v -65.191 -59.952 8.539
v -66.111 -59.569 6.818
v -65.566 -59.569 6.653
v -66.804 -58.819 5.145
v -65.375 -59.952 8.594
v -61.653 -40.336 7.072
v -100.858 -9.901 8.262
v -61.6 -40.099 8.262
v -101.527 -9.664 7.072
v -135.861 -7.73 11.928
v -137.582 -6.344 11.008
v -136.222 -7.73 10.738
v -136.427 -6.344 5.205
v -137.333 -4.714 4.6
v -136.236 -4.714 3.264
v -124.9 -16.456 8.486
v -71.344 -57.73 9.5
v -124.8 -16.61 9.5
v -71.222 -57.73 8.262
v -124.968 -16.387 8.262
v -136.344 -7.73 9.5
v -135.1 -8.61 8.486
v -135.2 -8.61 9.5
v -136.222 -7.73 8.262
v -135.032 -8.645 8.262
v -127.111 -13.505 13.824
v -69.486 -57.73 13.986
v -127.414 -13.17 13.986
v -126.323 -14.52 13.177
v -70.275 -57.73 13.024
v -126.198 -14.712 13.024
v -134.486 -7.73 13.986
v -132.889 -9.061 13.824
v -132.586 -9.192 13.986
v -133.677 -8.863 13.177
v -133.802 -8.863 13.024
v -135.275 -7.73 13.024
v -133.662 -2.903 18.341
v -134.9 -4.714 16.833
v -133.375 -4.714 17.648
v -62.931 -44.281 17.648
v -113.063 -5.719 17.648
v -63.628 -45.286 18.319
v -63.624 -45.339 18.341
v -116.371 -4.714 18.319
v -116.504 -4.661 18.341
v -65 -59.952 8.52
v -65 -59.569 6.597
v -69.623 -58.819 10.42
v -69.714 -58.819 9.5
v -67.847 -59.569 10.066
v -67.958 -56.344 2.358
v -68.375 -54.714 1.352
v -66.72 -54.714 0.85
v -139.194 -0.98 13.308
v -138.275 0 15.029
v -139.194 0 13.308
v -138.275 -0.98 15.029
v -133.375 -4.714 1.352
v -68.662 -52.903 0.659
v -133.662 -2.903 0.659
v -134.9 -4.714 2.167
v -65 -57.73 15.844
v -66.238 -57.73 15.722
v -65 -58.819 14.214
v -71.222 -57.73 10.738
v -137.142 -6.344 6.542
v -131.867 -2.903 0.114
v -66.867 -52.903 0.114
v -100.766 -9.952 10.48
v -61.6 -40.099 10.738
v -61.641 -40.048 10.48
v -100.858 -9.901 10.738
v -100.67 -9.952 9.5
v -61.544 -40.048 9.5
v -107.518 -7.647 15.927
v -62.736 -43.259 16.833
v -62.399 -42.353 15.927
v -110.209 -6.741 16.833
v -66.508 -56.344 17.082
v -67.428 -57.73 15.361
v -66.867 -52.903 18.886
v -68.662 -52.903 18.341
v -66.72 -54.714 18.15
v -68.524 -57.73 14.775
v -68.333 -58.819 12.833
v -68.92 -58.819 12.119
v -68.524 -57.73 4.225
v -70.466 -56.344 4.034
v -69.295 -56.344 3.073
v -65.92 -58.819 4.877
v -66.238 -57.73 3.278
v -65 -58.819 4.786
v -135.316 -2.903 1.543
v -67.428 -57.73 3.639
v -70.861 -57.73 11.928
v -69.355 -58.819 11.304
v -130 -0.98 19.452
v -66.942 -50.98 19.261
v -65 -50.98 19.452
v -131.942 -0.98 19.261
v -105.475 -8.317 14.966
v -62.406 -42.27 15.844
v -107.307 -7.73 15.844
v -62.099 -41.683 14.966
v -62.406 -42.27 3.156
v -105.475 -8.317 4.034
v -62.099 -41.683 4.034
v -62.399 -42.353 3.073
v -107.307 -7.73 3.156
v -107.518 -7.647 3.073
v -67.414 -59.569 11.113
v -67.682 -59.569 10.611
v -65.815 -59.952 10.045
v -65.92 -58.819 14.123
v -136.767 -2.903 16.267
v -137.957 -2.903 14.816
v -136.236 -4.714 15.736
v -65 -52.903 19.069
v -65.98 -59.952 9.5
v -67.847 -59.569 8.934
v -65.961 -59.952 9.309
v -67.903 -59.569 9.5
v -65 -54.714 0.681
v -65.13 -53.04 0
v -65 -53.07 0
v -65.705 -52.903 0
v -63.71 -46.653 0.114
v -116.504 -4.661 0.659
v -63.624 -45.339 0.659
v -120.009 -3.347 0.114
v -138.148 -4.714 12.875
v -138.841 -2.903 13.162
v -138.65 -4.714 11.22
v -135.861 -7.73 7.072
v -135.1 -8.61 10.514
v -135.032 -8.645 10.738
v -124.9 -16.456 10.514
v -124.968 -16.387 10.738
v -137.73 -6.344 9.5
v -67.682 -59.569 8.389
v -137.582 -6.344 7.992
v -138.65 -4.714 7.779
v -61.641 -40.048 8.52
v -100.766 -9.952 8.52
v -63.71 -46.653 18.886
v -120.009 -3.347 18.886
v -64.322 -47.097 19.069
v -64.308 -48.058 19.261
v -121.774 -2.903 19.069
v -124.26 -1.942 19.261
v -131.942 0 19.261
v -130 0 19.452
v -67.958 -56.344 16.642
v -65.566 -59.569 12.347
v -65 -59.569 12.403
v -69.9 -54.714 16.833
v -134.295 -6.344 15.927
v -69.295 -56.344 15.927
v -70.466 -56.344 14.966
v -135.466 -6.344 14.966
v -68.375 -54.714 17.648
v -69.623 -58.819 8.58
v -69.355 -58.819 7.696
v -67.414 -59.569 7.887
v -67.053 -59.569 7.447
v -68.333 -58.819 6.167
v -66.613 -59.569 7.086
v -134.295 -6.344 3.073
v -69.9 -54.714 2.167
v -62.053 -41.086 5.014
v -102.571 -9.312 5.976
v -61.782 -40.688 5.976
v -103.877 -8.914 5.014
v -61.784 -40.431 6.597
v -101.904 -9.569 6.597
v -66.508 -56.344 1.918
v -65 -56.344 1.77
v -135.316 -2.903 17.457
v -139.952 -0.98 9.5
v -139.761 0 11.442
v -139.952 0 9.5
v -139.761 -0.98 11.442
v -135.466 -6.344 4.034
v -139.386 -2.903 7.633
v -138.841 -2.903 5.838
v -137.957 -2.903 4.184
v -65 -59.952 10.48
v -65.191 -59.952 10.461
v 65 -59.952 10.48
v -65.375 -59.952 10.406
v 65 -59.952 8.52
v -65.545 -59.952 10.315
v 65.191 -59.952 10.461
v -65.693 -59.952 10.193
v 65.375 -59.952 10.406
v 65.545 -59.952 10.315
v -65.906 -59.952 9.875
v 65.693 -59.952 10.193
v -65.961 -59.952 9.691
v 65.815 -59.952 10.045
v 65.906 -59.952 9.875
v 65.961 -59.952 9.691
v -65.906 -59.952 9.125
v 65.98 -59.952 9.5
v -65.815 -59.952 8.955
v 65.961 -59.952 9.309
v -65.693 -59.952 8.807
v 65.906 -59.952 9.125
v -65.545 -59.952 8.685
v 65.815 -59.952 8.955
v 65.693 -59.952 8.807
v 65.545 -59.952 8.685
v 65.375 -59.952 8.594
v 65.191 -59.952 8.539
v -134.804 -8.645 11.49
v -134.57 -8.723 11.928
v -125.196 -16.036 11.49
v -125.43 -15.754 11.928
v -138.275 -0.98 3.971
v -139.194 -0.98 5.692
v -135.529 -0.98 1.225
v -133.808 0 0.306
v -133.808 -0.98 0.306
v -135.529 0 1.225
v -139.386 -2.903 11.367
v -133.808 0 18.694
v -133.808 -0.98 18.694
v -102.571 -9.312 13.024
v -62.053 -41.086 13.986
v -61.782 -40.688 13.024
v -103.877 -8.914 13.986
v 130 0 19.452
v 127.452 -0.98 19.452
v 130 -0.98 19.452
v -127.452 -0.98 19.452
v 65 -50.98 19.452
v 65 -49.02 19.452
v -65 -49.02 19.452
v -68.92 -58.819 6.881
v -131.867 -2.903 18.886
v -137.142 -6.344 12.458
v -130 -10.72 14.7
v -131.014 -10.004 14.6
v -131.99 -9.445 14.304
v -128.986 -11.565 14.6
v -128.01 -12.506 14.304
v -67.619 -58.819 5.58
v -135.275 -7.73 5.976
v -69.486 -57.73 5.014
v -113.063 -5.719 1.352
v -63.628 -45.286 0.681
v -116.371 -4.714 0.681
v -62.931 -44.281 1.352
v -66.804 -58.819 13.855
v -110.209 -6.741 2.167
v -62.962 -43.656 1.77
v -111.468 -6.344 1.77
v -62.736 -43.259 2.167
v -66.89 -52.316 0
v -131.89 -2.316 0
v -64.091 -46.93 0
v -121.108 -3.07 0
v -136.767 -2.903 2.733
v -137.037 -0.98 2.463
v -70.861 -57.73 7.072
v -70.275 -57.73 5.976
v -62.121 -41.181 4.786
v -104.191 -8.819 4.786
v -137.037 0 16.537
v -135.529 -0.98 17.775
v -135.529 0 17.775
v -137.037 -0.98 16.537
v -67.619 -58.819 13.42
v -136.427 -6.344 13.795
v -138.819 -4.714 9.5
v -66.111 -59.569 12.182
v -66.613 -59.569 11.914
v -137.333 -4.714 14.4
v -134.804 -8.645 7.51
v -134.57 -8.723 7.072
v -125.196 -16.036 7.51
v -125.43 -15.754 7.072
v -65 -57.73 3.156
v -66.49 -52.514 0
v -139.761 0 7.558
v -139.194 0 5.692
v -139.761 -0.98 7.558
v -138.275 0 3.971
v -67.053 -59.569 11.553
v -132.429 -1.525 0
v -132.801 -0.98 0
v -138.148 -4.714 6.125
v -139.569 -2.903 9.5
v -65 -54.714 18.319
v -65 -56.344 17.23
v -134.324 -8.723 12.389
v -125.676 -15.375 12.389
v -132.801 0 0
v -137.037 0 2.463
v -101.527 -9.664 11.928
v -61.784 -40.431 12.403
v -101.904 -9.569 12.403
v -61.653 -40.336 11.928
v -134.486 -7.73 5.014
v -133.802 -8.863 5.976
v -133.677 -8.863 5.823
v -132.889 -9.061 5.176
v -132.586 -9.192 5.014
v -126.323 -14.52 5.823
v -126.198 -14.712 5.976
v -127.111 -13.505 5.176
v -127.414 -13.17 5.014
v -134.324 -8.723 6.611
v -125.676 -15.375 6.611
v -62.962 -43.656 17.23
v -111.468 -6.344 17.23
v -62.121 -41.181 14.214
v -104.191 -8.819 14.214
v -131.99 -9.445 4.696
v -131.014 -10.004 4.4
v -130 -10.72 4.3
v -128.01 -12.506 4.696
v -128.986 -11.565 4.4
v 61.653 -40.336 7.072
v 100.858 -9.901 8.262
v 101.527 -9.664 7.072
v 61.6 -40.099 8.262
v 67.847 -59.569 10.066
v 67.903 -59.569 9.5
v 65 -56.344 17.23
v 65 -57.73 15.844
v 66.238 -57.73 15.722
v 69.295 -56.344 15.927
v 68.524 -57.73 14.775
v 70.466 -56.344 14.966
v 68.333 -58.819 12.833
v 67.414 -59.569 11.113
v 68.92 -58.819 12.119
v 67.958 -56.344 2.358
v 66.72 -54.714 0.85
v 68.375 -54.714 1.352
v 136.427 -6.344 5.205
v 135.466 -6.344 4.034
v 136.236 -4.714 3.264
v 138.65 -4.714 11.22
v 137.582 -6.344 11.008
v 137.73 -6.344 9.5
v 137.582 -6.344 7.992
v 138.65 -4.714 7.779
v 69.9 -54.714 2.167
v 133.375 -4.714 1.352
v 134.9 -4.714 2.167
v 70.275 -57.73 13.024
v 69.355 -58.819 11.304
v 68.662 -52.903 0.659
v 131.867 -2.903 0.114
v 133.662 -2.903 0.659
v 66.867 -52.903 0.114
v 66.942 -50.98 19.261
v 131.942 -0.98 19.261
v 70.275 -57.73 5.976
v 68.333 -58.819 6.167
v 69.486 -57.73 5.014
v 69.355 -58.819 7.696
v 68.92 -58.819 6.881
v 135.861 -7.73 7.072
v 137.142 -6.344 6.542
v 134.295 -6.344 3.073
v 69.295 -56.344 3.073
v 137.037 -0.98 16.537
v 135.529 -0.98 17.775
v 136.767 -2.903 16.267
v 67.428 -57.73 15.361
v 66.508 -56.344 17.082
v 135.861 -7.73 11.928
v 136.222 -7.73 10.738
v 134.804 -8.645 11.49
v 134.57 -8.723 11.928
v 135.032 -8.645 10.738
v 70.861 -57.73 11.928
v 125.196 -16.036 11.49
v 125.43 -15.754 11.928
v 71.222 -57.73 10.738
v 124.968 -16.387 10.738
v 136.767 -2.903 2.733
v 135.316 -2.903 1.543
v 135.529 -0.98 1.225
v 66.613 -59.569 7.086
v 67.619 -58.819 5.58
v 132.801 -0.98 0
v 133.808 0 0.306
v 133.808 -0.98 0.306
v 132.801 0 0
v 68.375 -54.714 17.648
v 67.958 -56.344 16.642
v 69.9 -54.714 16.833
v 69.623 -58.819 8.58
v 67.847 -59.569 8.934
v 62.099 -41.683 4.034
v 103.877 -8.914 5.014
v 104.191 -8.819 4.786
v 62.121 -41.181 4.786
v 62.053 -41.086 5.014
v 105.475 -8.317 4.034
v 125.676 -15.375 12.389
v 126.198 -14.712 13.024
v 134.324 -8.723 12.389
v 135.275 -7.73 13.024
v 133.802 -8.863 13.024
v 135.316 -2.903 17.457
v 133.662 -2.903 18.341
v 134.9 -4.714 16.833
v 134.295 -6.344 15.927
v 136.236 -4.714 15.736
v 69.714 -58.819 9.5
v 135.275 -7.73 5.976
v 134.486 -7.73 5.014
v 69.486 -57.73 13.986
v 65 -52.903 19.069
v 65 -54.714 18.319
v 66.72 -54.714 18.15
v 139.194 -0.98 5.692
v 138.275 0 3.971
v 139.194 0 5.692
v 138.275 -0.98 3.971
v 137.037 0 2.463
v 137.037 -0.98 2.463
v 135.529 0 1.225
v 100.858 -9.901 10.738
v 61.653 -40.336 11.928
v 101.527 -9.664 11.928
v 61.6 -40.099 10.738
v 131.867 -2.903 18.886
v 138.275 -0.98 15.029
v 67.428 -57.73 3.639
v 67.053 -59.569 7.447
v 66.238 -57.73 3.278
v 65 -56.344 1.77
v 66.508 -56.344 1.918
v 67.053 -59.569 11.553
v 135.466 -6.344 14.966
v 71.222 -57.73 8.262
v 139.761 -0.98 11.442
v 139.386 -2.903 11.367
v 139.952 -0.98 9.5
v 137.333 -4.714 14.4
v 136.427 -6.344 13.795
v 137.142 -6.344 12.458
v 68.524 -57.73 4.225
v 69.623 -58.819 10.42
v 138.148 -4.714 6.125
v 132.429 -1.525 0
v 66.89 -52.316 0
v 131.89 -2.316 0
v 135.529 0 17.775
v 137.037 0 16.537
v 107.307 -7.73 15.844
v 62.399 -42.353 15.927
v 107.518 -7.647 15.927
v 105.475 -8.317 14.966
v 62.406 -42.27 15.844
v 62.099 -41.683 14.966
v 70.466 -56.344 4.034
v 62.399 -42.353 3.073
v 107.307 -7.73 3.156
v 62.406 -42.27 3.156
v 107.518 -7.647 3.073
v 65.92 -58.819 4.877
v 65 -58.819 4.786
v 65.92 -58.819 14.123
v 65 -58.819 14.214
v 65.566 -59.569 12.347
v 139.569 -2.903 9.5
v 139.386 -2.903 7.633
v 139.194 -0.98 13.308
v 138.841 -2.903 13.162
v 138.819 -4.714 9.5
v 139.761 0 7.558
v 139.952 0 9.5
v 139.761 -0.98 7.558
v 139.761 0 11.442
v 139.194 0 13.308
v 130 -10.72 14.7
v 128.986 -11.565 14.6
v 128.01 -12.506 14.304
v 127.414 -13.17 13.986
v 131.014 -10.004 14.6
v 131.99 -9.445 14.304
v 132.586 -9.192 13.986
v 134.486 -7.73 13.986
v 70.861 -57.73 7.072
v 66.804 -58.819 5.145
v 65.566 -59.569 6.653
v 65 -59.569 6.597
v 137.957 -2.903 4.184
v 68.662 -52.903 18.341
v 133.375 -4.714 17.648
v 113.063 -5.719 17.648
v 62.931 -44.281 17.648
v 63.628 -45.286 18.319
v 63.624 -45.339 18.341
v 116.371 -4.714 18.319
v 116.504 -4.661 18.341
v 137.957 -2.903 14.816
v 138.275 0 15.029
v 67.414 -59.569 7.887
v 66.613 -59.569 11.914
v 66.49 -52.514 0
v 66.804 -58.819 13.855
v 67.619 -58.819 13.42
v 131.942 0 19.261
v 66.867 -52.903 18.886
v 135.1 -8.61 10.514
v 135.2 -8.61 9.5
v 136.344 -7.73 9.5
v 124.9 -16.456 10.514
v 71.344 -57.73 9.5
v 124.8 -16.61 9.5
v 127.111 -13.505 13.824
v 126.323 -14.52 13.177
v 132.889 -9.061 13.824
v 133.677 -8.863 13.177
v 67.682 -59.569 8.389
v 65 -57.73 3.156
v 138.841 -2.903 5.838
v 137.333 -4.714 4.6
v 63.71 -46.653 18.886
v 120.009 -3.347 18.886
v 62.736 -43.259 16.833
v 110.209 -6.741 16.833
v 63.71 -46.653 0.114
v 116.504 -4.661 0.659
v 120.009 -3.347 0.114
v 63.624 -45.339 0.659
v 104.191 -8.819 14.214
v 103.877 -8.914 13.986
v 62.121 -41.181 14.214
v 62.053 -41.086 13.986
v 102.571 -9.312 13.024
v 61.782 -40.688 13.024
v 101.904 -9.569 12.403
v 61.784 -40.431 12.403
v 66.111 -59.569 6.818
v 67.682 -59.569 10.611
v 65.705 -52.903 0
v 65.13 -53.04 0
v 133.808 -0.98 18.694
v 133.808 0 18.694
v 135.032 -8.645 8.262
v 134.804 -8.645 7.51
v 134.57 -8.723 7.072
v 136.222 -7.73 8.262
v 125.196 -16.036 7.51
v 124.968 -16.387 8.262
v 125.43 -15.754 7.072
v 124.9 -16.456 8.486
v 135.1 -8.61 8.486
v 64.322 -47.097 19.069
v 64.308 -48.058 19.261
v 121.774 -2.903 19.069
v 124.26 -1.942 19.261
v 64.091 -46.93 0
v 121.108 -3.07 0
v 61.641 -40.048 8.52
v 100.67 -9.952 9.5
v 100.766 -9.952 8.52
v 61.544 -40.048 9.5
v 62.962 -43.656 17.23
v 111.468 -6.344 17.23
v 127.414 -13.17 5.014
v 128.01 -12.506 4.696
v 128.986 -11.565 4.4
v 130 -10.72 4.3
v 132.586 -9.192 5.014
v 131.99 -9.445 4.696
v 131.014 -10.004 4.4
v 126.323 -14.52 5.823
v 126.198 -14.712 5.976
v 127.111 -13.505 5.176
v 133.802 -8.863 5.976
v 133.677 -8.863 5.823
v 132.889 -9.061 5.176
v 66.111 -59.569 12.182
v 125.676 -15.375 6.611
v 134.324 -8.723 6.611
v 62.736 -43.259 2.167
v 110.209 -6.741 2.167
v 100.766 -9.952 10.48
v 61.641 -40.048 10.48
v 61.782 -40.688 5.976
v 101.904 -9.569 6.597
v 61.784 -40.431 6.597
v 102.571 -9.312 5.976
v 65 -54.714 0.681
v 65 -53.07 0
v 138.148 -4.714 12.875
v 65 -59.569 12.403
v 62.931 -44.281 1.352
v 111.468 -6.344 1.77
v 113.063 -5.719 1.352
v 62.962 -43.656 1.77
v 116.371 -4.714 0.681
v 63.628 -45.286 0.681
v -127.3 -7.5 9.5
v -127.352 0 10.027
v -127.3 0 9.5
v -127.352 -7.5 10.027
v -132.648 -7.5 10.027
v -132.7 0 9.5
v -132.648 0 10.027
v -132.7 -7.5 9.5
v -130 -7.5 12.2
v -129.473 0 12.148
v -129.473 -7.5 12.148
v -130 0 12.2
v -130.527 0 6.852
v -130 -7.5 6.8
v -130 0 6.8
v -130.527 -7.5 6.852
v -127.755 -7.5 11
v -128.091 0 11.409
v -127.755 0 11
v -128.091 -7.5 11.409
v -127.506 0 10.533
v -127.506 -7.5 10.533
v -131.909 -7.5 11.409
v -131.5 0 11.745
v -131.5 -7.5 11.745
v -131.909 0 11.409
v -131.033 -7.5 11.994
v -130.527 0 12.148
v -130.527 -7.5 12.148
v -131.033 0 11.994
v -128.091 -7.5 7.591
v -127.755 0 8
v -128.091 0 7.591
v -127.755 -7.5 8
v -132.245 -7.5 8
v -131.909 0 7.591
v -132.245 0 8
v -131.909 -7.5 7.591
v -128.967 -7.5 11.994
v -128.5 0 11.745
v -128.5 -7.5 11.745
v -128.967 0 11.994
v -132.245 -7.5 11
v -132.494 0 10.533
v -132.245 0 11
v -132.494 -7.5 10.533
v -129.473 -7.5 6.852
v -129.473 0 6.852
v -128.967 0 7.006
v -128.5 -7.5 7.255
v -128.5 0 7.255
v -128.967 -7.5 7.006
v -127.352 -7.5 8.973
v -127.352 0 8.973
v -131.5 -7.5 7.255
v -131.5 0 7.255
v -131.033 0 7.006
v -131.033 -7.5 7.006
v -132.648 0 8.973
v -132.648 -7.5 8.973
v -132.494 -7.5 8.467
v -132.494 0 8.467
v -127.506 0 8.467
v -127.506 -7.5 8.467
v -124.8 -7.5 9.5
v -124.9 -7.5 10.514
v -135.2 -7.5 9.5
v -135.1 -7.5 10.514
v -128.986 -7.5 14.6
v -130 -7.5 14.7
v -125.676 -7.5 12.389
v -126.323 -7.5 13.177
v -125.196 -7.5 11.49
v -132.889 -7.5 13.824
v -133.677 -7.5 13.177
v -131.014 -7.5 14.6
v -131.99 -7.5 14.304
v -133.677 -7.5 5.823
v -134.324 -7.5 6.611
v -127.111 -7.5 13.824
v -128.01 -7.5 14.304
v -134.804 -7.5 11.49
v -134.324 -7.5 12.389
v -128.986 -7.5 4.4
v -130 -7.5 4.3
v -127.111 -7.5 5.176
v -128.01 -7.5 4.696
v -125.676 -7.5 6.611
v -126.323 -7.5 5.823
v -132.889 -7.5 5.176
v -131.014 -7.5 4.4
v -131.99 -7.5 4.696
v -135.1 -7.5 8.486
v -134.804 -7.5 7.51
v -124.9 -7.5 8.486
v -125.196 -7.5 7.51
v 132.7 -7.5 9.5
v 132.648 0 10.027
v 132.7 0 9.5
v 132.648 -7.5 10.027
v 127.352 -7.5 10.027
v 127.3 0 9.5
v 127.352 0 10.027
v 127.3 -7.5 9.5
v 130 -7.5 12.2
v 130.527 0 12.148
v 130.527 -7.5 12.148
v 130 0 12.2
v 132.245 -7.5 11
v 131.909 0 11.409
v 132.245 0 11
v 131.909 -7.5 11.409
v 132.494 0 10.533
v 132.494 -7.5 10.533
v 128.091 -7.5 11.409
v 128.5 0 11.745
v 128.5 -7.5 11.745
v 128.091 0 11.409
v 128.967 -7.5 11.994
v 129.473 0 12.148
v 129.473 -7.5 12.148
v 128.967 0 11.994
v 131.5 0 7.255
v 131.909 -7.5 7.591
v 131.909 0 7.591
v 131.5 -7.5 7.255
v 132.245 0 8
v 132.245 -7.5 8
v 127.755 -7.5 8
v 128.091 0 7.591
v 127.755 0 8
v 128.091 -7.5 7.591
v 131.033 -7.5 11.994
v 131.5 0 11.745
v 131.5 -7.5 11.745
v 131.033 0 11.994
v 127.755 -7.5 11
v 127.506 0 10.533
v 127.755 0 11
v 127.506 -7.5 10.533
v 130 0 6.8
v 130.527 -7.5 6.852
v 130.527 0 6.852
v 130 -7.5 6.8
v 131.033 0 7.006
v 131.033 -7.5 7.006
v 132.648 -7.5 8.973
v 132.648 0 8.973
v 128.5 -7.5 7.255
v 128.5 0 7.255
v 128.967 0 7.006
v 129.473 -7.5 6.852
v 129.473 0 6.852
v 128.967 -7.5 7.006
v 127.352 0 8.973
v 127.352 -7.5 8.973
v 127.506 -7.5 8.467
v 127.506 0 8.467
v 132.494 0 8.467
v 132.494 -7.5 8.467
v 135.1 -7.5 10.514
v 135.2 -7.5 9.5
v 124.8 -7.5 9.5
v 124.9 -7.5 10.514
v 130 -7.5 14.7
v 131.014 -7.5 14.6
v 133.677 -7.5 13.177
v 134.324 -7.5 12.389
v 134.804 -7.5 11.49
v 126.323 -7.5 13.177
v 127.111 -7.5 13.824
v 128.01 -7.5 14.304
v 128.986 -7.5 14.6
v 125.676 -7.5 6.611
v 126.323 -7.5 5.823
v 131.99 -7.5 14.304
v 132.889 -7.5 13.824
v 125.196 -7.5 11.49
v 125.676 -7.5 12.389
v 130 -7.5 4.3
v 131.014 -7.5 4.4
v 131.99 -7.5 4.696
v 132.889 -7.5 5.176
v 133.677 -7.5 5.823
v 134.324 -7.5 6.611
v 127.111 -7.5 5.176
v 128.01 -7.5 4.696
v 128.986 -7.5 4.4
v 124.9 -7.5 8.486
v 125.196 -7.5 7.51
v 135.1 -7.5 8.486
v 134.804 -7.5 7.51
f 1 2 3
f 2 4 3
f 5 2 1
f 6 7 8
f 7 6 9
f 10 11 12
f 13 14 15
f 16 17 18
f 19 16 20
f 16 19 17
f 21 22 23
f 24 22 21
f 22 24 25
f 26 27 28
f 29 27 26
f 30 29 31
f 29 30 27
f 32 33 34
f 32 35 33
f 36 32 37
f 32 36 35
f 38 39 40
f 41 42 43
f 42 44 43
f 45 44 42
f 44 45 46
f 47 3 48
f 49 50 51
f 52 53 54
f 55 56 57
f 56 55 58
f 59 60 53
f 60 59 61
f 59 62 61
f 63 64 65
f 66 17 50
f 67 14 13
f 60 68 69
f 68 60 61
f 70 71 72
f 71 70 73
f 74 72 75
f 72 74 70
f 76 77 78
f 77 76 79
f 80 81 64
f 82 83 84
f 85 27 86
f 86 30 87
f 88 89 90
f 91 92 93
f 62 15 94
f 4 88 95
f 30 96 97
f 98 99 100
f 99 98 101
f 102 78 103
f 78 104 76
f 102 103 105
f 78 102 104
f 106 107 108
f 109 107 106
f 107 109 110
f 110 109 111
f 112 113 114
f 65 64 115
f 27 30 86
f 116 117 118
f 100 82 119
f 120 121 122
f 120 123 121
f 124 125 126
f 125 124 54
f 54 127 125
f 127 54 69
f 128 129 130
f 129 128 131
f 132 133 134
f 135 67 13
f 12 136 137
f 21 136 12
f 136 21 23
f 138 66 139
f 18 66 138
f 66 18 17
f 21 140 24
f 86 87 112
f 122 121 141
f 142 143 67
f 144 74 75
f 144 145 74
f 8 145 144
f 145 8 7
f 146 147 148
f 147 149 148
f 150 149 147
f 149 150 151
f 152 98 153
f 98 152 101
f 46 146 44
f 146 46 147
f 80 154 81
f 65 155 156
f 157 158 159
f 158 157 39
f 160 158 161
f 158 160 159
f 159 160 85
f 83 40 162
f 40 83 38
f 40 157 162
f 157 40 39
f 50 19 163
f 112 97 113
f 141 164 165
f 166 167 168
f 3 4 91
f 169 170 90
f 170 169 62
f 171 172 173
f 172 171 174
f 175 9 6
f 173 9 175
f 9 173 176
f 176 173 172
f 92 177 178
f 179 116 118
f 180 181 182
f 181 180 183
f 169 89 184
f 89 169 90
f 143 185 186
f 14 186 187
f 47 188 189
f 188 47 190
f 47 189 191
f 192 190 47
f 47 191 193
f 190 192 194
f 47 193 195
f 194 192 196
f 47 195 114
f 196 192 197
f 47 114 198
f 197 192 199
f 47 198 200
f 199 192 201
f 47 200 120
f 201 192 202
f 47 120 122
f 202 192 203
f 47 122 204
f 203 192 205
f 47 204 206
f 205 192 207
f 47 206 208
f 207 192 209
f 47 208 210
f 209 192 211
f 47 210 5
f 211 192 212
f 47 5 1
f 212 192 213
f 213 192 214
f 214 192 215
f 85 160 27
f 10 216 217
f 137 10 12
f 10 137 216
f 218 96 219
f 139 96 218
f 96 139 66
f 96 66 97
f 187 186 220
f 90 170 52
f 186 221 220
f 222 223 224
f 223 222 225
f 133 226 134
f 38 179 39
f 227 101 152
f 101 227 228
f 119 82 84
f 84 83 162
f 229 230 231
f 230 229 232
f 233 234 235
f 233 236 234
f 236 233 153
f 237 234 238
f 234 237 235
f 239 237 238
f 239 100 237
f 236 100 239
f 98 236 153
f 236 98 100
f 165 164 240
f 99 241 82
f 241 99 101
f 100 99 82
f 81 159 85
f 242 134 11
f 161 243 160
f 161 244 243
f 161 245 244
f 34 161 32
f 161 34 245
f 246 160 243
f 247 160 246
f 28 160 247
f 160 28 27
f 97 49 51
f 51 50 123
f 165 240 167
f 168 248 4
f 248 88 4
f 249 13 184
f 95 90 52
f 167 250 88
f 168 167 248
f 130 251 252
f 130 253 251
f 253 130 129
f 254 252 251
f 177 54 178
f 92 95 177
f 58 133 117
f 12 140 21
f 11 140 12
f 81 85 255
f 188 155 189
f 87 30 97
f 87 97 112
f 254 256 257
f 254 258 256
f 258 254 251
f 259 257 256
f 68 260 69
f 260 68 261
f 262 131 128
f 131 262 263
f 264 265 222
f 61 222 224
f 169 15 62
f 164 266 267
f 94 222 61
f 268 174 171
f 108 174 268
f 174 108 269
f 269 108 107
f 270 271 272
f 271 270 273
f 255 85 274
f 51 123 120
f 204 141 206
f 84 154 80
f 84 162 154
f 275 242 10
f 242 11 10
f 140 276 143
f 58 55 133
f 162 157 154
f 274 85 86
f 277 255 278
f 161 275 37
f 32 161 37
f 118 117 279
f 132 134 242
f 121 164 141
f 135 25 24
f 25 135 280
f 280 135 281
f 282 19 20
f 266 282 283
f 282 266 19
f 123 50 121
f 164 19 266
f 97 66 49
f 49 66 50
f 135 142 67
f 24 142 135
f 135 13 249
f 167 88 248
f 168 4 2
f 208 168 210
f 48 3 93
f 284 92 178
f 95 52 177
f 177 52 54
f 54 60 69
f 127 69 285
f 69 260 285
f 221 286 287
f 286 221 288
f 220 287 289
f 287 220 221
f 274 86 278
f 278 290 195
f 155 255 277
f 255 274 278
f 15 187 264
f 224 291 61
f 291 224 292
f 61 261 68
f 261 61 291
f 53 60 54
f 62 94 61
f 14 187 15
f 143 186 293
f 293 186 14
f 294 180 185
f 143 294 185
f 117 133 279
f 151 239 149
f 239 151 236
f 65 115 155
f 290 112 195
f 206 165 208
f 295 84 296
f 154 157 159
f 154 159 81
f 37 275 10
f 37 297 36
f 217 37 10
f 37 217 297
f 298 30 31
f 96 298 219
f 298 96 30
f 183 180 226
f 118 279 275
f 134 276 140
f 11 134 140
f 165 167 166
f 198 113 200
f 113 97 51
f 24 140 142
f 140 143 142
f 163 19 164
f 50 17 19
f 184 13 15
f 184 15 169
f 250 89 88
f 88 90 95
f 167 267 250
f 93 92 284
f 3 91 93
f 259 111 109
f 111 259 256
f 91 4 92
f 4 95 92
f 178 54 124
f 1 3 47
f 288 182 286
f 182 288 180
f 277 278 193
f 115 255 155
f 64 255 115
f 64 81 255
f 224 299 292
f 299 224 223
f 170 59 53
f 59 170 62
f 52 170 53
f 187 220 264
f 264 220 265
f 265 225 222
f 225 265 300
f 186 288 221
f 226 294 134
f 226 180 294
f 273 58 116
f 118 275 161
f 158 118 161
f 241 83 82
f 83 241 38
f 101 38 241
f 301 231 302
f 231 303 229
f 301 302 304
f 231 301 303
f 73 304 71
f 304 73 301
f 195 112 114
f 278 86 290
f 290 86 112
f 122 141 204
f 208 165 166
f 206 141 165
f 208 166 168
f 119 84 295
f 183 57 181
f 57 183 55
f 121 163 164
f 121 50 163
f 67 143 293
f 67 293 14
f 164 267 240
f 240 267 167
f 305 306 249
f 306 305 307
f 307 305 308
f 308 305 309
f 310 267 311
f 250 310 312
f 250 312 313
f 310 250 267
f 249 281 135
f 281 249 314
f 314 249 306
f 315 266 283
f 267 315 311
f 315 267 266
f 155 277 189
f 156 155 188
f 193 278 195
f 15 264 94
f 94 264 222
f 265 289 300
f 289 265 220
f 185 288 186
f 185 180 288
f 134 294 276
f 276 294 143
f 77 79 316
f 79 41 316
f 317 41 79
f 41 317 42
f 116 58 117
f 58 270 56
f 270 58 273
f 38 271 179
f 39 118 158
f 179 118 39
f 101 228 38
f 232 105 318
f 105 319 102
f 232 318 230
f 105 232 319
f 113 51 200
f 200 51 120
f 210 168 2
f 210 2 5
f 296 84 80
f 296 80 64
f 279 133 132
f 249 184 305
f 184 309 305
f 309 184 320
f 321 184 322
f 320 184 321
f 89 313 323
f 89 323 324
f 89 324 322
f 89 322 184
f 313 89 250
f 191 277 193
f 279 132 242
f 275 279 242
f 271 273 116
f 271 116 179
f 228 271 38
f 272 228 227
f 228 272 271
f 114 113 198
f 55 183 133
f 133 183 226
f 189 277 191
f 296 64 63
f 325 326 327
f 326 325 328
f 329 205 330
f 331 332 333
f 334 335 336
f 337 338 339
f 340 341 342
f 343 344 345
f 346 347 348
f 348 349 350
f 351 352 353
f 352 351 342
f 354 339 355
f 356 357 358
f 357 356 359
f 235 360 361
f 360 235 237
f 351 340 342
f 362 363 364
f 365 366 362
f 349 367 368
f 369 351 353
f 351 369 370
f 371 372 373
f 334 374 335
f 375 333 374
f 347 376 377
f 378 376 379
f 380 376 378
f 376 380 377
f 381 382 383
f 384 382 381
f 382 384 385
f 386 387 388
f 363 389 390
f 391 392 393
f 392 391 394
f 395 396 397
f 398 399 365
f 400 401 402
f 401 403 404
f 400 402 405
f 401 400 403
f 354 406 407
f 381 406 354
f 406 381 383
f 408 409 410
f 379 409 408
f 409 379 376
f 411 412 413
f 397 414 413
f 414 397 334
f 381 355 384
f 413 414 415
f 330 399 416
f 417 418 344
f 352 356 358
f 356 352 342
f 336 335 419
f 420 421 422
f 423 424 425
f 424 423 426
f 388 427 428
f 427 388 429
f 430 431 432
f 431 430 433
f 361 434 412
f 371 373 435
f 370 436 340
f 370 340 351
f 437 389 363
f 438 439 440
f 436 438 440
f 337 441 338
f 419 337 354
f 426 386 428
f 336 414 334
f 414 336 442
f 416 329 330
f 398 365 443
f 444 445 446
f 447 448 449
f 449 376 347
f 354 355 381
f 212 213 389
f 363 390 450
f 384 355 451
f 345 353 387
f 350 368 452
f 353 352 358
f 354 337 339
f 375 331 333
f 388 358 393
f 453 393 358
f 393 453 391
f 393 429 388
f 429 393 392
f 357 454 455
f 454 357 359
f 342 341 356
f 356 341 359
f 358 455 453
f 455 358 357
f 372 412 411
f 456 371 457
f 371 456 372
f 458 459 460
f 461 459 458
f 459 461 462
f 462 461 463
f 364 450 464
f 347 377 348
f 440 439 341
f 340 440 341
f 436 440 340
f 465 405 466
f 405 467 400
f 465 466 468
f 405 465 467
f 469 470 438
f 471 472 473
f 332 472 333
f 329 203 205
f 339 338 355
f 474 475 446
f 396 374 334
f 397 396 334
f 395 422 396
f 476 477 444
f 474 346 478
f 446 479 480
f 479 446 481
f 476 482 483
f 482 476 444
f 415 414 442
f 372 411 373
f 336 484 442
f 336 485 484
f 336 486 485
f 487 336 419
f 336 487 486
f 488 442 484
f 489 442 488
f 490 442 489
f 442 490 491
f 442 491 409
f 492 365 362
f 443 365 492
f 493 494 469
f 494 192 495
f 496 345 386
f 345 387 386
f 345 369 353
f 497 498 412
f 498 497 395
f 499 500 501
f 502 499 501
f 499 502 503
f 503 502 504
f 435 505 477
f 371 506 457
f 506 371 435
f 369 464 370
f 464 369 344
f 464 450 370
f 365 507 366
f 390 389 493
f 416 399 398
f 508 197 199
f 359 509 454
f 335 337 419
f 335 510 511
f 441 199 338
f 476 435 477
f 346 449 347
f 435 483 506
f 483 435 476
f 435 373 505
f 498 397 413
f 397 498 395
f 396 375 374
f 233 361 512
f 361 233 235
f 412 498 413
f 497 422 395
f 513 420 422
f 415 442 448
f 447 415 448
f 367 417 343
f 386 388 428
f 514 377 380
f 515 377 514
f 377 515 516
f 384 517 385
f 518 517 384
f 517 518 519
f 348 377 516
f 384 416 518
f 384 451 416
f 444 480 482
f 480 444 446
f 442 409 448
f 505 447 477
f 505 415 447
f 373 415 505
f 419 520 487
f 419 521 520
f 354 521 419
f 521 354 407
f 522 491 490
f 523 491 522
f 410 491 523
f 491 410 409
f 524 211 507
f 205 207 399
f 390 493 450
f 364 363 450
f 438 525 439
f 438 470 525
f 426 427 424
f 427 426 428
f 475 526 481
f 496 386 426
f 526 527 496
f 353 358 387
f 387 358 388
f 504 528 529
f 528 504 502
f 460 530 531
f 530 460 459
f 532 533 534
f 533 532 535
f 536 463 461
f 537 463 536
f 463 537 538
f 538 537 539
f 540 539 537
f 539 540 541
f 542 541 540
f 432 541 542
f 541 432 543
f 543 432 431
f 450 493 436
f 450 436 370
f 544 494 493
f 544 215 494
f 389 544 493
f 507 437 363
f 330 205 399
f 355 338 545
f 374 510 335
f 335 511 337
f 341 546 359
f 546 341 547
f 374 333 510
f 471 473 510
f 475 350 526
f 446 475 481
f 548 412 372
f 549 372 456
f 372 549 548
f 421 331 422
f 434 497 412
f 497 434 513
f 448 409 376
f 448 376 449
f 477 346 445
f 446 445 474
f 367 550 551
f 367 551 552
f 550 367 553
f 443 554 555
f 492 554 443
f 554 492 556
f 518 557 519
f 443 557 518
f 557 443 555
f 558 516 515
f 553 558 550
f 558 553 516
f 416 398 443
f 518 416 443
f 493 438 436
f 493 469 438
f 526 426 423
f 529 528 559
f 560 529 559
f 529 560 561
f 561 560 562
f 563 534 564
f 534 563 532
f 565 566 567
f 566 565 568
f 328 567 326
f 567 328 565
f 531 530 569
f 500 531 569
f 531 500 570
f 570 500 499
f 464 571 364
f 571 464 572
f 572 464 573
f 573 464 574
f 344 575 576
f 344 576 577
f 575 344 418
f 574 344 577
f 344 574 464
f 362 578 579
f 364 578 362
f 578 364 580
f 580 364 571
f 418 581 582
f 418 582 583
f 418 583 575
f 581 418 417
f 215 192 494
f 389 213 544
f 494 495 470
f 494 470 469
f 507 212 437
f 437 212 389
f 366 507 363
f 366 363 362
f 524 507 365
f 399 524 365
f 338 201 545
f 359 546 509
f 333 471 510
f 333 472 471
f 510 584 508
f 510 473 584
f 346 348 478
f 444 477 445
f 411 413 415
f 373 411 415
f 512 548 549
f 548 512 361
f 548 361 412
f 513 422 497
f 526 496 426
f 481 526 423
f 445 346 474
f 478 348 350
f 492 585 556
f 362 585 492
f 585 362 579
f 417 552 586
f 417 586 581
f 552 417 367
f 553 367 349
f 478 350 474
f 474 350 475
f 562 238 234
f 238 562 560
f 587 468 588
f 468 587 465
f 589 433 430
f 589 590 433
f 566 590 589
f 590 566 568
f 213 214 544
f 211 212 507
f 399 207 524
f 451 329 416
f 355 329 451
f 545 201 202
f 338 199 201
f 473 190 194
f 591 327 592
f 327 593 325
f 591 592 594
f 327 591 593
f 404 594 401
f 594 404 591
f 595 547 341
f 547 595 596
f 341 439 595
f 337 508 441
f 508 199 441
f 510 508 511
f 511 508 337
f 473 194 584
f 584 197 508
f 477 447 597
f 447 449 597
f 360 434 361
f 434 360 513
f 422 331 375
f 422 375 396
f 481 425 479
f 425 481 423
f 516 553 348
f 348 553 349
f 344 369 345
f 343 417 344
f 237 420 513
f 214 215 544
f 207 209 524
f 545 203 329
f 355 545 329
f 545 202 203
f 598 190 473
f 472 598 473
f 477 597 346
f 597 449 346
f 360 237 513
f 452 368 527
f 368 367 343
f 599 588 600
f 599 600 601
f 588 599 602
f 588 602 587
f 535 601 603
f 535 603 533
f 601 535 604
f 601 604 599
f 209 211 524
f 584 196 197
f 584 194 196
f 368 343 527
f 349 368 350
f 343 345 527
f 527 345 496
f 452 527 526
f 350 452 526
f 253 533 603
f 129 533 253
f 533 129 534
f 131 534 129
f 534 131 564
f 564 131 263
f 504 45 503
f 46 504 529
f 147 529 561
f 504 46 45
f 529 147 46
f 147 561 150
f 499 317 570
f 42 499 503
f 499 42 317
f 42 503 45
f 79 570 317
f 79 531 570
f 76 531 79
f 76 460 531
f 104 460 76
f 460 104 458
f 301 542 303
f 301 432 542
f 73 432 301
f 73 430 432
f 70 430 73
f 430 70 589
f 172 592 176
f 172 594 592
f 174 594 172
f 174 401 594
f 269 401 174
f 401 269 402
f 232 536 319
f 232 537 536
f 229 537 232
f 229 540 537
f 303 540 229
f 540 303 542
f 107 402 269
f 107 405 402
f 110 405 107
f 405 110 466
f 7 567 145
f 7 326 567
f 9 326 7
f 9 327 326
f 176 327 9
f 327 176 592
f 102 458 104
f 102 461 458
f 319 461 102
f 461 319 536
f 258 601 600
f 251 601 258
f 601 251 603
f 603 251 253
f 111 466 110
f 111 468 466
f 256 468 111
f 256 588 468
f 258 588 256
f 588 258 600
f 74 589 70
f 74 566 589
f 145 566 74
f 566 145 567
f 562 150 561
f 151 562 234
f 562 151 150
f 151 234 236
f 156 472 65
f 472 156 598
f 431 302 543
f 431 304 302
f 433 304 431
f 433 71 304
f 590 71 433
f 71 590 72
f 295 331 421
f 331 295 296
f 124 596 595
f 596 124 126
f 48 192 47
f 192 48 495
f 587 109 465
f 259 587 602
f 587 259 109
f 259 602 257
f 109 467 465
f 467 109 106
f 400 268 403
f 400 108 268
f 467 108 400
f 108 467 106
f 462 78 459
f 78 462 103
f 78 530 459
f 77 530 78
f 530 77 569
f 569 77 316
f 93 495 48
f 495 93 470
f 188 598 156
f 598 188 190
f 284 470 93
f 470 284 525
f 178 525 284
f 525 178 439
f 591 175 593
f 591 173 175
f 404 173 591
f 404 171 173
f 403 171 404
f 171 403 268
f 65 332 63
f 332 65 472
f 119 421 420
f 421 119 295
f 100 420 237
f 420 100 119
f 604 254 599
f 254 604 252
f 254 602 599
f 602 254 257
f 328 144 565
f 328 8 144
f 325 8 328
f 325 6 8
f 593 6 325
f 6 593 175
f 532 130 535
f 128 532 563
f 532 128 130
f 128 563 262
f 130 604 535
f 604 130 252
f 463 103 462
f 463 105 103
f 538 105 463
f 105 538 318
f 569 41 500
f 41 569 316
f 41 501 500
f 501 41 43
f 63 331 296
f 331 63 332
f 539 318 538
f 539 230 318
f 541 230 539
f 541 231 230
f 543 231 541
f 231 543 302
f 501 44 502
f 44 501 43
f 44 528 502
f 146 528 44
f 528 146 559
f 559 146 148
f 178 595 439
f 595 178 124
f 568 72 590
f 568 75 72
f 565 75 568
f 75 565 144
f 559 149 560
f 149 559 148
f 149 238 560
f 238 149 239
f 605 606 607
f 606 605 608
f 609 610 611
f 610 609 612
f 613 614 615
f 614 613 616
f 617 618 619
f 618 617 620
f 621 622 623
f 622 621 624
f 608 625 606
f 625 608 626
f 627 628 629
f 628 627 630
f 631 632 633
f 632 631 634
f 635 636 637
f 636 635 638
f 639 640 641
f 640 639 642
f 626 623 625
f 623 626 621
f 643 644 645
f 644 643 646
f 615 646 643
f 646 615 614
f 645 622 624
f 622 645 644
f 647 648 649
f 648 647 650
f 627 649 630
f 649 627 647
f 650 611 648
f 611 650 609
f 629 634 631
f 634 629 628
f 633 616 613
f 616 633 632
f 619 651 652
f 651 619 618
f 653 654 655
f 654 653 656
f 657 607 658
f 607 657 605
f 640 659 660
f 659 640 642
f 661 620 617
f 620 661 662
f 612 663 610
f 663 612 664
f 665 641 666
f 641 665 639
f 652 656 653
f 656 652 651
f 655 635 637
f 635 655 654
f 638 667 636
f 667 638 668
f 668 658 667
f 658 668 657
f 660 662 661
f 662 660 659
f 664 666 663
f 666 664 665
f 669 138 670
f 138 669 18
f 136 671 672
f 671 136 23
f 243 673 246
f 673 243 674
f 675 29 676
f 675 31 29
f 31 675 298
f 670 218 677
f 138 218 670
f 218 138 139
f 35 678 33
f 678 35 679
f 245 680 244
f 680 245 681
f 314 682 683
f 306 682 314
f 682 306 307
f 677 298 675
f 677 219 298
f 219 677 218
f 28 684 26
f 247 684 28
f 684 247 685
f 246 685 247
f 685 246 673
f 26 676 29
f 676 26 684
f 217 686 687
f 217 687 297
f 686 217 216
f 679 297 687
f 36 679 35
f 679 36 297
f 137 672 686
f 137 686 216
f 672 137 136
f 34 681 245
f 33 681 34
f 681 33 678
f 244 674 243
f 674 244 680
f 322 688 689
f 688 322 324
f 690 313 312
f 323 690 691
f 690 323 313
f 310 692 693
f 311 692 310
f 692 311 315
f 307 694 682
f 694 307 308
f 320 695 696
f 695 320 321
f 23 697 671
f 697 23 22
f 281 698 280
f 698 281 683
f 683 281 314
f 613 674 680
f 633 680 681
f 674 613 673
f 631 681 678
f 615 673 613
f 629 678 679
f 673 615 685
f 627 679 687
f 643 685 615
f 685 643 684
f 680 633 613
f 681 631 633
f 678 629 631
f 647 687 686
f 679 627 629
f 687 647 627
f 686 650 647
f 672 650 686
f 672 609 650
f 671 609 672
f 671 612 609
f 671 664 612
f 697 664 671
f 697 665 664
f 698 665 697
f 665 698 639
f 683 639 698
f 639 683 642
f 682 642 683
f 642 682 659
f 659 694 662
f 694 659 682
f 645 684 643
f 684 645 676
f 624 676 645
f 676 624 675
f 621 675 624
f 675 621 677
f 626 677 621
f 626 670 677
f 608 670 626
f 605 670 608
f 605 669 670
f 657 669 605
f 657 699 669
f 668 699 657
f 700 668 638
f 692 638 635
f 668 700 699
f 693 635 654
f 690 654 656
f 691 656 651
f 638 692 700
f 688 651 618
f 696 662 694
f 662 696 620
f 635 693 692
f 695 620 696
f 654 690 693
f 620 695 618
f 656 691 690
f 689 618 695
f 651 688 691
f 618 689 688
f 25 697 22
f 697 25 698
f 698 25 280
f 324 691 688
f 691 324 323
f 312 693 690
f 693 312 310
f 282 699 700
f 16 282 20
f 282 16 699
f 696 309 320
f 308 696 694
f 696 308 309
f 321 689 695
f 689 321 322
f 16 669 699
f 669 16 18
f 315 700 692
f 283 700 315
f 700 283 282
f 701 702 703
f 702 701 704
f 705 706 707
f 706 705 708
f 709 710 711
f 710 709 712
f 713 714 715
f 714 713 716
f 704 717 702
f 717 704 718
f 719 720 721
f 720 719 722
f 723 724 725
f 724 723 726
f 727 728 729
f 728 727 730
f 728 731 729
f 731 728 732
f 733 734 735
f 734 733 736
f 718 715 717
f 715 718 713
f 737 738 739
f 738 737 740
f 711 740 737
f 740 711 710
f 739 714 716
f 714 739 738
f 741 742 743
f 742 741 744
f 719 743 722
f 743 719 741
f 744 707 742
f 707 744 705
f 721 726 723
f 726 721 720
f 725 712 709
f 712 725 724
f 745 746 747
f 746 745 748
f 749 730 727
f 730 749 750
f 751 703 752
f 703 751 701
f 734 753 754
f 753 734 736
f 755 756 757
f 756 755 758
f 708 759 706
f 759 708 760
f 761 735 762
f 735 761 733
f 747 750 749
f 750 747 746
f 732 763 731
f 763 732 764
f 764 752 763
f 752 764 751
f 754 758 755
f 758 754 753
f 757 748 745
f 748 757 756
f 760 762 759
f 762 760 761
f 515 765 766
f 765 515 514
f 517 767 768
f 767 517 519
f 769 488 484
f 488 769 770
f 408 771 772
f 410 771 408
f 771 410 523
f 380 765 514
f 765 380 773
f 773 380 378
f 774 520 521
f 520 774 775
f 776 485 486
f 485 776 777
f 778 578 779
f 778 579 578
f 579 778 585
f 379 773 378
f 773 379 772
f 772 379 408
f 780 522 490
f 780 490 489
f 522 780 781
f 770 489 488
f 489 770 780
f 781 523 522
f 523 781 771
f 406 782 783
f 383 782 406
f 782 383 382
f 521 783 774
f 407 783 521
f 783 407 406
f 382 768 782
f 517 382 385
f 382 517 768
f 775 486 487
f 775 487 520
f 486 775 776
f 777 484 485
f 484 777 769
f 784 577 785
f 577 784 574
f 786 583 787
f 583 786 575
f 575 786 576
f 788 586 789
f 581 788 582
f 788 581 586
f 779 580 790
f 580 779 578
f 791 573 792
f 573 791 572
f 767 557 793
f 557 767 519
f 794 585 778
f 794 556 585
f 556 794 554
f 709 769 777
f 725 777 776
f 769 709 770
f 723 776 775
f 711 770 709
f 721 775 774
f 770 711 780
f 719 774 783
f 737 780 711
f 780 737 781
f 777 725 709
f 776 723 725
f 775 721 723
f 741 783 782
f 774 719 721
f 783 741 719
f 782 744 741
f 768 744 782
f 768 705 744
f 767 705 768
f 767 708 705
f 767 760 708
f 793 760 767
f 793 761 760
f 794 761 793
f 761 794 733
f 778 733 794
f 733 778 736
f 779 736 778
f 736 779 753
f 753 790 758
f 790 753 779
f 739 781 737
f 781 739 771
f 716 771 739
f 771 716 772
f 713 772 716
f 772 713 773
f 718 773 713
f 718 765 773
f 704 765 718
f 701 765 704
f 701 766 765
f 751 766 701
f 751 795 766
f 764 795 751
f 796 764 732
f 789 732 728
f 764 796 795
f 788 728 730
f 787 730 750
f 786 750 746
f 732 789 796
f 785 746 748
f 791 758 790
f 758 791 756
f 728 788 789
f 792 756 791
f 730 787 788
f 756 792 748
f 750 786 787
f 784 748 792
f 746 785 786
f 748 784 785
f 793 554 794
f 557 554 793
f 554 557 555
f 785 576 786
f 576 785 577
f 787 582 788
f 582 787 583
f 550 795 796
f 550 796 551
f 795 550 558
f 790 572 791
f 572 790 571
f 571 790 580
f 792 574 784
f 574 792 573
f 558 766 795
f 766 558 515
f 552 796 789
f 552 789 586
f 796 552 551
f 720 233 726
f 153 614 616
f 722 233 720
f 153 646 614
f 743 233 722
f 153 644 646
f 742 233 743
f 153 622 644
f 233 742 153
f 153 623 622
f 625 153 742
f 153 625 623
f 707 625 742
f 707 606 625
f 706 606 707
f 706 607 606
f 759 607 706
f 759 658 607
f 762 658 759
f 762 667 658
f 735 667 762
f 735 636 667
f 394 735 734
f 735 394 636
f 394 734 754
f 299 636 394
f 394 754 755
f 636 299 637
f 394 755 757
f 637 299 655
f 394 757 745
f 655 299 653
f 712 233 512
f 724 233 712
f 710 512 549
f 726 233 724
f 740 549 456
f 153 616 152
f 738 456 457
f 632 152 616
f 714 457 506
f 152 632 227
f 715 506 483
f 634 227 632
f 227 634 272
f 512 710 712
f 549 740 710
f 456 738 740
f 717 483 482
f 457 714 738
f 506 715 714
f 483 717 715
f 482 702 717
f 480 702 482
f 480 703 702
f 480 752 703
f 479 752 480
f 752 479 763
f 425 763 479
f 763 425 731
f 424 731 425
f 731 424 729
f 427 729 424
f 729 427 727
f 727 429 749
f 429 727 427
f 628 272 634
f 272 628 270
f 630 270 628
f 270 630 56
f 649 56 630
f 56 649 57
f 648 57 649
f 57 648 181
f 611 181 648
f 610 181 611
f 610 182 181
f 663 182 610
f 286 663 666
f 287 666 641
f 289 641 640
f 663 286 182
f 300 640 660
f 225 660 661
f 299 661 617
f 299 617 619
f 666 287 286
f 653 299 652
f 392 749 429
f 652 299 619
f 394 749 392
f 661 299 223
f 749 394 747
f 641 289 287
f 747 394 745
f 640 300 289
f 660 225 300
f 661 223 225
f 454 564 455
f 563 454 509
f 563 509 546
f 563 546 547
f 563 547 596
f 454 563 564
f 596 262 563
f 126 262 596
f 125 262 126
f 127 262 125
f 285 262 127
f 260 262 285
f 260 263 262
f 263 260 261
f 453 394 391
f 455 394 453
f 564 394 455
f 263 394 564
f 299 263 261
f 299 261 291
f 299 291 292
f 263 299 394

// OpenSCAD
// file: ../configuration.scad
in = 25.4;
mdf_wall = 6.5;
mdf_tab = 15;

wall = 5;

screw_slop = .2;
slop = .2;
laser_slop = -.1;

smooth_rod_rad = 10/2+laser_slop+.1;
smooth_rod_sep =490/5;

//this is for the old printer 
//smooth_rod_sep = 115;

//these can't change - measured values.
beam = 20;
bed_screw_sep = 309;
bed = 300;

layer_height=.2;

//this is using the gt2 idlers from robotdigg
//idler_rad = 13/2;
//idler_flange_rad = 18/2;
//idler_thick = 12;

//these use the smaller M5 flanged bearings as idlers
idler_rad = 16/2;
idler_flange_rad = 18/2;
idler_thick = 11.5;

//flanged bearing for the Z idler
z_bearing=22/2;
z_bearing_flange = 25/2;
leadscrew_rad = 8/2+slop;
leadscrew_shaft_rad = 7;
leadscrew_screw_rad = 19.05/2;

pulley_rad = 13/2;
pulley_flange_rad = 18/2;

//using the mini V-wheels
wheel_rad = 15.5/2;
wheel_inner_rad = 12.5/2;
wheel_clearance = 18;
wheel_height = 9;
wheel_inner_height = 5;
wheel_flange_rad = 16/2;

eccentric_rad = 7.3/2;
eccentric_flange_rad = 11/2;

//frame lengths - may be dependent on wall above.
frame_x = 500;  //we lose more in X because of the endcaps - it's where all the motors etc. will hide.
frame_y = 490;  //(490-300)/2-beam=75mm clearance on either side of the print bed.
corner_y = frame_y-75;
frame_z = 440;  //because the leadscrews are short, the motors stick up and the feet stick down
corner_z = frame_z-25;

corner_endplate = true; //this controls wether you want a full endcap, or just the corners.  Corners allows twisting in a direction that should be impossible when the rails are connected on both ends, but I wanted to retain the old option just in case.
corner_length = 170; //length of the corner side support.

foot_height = 25.4;  //extra meat on the legs

echo("BOM: 4, reg rail, 2020", frame_x, "Frame");

belt_thick = 9;
belt_width = 1.5;

//motor size and placement variables
motor_w = 42;
motor_r = 52/2;
motor_y = frame_y/2-beam-pulley_rad-belt_width; //distance motors are from the center.




//gantry - might want to make it bigger
echo("BOM: 1, v-rail, 2020", frame_y, "Gantry");

//bed lengths
bed_x = 300+beam*2;
bed_y = 300;  //the screwholes on the bed should line up with the long_bed rails.

bed_screw_offset_y = bed_y/2;
bed_screw_offset_x = 15+5+2;

echo("BOM: 2, reg rail, 2020", bed_x, "Bed mount");
echo("BOM: 3, reg rail, 2020", bed_y, "Bed mount");  //might want more than three - to hold insulation well.

//standard screw variables
m3_nut_rad = 6.01/2+slop;
m3_nut_height = 2.4;
m3_rad = 3/2+slop;
m3_cap_rad = 3.25;
m3_cap_height = 2;
m3_sq_nut_rad = 7.9/2;


m4_nut_rad = 7.66/2+slop;
m4_nut_height = 3.2;
m4_rad = 4/2+slop;
m4_cap_rad = 7/2+slop;
m4_cap_height = 2.5;

m5_nut_rad = 8.79/2;
m5_sq_nut_rad = (8*sqrt(2)+slop/2)/2;
m5_nut_rad_laser = 8.79/2-.445;
m5_nut_height = 4.7;
m5_rad = 5/2+slop;
m5_rad_laser = 5/2-.1;
m5_cap_rad = 10/2+slop;
m5_cap_height = 3;
m5_washer_rad = 11/2+slop;


//redoing the frame with 10-24 screws - will use them for self-tapping screws
//on the endcaps, as well as all the MDF->MDF joints.  The reason for this is
//that the nuts on 10-24 are MUCH larger than  M5 nuts - making it way less
//likely to ruin the MDF.
ten24_rad = (.19*in/2+slop);
ten24_cap_rad = (.361*in/2+slop);
ten24_cap_height = .101*in+slop;
ten24_nut_rad = ((3/8*in)*cos(180/6))/2;
ten24_sq_nut_rad = ((3/8*in)*sqrt(2))/2+slop/2;

ten24_nut_height = 1/8*in+slop;

ten24_rad_laser = ten24_rad+laser_slop/2;
ten24_sq_nut_rad_laser = ten24_sq_nut_rad+laser_slop/2;
ten24_sq_nut_flat = 9.5;
ten24_sq_nut_flat_laser = ten24_sq_nut_flat+laser_slop;


echo(m5_sq_nut_rad);
echo(ten24_sq_nut_rad);



//some enums
MALE = 1;
FEMALE = -1;

//makes all the holes have lots of segments
$fs=.5;
$fa=.1;
// main file
include <../configuration.scad>

screw_sep = 260;

difference(){
    translate([0,0,9.5]) rotate([90,0,0]) handle();
    
    //cut off the bottom for easier printing
    translate([0,0,-50]) cube([400,400,100], center=true);
}


wall=5;

$fn=32;


module handle(width=20){
    difference(){
        union(){
            //smooth rounded base
            hull() for(i=[-1,1]) translate([i*screw_sep/2,0,0])
                sphere(r=width/2);
            
            //rounded top, too
            hull() for(i=[-1,1]) translate([i*screw_sep/4,0,50])
                sphere(r=width/2);
            
            //sides just connect it up
            for(i=[-1,1]){
                hull(){
                    translate([i*screw_sep/2,0,0])
                        sphere(r=width/2);
                    translate([i*screw_sep/4,0,50])
                        sphere(r=width/2);
                }
            }
            
            //mid-brace to make it a bit stronger
            *for(i=[-1,1]){
                hull(){
                    translate([i*screw_sep/3,0,0])
                        sphere(r=width/2);
                    translate([i*screw_sep/4,0,50])
                        sphere(r=width/2);
                }
            }
        }
        
        //screwholes
        for(i=[-1,1]) translate([i*screw_sep/2,0,-1]){
            cylinder(r=m5_rad, h=20);
            translate([0,0,wall*1.5+1]) cylinder(r=m5_cap_rad, h=100);
        }
        
        //cut off the base
        translate([0,0,-50]) cube([400,400,100], center=true);
    }
}
